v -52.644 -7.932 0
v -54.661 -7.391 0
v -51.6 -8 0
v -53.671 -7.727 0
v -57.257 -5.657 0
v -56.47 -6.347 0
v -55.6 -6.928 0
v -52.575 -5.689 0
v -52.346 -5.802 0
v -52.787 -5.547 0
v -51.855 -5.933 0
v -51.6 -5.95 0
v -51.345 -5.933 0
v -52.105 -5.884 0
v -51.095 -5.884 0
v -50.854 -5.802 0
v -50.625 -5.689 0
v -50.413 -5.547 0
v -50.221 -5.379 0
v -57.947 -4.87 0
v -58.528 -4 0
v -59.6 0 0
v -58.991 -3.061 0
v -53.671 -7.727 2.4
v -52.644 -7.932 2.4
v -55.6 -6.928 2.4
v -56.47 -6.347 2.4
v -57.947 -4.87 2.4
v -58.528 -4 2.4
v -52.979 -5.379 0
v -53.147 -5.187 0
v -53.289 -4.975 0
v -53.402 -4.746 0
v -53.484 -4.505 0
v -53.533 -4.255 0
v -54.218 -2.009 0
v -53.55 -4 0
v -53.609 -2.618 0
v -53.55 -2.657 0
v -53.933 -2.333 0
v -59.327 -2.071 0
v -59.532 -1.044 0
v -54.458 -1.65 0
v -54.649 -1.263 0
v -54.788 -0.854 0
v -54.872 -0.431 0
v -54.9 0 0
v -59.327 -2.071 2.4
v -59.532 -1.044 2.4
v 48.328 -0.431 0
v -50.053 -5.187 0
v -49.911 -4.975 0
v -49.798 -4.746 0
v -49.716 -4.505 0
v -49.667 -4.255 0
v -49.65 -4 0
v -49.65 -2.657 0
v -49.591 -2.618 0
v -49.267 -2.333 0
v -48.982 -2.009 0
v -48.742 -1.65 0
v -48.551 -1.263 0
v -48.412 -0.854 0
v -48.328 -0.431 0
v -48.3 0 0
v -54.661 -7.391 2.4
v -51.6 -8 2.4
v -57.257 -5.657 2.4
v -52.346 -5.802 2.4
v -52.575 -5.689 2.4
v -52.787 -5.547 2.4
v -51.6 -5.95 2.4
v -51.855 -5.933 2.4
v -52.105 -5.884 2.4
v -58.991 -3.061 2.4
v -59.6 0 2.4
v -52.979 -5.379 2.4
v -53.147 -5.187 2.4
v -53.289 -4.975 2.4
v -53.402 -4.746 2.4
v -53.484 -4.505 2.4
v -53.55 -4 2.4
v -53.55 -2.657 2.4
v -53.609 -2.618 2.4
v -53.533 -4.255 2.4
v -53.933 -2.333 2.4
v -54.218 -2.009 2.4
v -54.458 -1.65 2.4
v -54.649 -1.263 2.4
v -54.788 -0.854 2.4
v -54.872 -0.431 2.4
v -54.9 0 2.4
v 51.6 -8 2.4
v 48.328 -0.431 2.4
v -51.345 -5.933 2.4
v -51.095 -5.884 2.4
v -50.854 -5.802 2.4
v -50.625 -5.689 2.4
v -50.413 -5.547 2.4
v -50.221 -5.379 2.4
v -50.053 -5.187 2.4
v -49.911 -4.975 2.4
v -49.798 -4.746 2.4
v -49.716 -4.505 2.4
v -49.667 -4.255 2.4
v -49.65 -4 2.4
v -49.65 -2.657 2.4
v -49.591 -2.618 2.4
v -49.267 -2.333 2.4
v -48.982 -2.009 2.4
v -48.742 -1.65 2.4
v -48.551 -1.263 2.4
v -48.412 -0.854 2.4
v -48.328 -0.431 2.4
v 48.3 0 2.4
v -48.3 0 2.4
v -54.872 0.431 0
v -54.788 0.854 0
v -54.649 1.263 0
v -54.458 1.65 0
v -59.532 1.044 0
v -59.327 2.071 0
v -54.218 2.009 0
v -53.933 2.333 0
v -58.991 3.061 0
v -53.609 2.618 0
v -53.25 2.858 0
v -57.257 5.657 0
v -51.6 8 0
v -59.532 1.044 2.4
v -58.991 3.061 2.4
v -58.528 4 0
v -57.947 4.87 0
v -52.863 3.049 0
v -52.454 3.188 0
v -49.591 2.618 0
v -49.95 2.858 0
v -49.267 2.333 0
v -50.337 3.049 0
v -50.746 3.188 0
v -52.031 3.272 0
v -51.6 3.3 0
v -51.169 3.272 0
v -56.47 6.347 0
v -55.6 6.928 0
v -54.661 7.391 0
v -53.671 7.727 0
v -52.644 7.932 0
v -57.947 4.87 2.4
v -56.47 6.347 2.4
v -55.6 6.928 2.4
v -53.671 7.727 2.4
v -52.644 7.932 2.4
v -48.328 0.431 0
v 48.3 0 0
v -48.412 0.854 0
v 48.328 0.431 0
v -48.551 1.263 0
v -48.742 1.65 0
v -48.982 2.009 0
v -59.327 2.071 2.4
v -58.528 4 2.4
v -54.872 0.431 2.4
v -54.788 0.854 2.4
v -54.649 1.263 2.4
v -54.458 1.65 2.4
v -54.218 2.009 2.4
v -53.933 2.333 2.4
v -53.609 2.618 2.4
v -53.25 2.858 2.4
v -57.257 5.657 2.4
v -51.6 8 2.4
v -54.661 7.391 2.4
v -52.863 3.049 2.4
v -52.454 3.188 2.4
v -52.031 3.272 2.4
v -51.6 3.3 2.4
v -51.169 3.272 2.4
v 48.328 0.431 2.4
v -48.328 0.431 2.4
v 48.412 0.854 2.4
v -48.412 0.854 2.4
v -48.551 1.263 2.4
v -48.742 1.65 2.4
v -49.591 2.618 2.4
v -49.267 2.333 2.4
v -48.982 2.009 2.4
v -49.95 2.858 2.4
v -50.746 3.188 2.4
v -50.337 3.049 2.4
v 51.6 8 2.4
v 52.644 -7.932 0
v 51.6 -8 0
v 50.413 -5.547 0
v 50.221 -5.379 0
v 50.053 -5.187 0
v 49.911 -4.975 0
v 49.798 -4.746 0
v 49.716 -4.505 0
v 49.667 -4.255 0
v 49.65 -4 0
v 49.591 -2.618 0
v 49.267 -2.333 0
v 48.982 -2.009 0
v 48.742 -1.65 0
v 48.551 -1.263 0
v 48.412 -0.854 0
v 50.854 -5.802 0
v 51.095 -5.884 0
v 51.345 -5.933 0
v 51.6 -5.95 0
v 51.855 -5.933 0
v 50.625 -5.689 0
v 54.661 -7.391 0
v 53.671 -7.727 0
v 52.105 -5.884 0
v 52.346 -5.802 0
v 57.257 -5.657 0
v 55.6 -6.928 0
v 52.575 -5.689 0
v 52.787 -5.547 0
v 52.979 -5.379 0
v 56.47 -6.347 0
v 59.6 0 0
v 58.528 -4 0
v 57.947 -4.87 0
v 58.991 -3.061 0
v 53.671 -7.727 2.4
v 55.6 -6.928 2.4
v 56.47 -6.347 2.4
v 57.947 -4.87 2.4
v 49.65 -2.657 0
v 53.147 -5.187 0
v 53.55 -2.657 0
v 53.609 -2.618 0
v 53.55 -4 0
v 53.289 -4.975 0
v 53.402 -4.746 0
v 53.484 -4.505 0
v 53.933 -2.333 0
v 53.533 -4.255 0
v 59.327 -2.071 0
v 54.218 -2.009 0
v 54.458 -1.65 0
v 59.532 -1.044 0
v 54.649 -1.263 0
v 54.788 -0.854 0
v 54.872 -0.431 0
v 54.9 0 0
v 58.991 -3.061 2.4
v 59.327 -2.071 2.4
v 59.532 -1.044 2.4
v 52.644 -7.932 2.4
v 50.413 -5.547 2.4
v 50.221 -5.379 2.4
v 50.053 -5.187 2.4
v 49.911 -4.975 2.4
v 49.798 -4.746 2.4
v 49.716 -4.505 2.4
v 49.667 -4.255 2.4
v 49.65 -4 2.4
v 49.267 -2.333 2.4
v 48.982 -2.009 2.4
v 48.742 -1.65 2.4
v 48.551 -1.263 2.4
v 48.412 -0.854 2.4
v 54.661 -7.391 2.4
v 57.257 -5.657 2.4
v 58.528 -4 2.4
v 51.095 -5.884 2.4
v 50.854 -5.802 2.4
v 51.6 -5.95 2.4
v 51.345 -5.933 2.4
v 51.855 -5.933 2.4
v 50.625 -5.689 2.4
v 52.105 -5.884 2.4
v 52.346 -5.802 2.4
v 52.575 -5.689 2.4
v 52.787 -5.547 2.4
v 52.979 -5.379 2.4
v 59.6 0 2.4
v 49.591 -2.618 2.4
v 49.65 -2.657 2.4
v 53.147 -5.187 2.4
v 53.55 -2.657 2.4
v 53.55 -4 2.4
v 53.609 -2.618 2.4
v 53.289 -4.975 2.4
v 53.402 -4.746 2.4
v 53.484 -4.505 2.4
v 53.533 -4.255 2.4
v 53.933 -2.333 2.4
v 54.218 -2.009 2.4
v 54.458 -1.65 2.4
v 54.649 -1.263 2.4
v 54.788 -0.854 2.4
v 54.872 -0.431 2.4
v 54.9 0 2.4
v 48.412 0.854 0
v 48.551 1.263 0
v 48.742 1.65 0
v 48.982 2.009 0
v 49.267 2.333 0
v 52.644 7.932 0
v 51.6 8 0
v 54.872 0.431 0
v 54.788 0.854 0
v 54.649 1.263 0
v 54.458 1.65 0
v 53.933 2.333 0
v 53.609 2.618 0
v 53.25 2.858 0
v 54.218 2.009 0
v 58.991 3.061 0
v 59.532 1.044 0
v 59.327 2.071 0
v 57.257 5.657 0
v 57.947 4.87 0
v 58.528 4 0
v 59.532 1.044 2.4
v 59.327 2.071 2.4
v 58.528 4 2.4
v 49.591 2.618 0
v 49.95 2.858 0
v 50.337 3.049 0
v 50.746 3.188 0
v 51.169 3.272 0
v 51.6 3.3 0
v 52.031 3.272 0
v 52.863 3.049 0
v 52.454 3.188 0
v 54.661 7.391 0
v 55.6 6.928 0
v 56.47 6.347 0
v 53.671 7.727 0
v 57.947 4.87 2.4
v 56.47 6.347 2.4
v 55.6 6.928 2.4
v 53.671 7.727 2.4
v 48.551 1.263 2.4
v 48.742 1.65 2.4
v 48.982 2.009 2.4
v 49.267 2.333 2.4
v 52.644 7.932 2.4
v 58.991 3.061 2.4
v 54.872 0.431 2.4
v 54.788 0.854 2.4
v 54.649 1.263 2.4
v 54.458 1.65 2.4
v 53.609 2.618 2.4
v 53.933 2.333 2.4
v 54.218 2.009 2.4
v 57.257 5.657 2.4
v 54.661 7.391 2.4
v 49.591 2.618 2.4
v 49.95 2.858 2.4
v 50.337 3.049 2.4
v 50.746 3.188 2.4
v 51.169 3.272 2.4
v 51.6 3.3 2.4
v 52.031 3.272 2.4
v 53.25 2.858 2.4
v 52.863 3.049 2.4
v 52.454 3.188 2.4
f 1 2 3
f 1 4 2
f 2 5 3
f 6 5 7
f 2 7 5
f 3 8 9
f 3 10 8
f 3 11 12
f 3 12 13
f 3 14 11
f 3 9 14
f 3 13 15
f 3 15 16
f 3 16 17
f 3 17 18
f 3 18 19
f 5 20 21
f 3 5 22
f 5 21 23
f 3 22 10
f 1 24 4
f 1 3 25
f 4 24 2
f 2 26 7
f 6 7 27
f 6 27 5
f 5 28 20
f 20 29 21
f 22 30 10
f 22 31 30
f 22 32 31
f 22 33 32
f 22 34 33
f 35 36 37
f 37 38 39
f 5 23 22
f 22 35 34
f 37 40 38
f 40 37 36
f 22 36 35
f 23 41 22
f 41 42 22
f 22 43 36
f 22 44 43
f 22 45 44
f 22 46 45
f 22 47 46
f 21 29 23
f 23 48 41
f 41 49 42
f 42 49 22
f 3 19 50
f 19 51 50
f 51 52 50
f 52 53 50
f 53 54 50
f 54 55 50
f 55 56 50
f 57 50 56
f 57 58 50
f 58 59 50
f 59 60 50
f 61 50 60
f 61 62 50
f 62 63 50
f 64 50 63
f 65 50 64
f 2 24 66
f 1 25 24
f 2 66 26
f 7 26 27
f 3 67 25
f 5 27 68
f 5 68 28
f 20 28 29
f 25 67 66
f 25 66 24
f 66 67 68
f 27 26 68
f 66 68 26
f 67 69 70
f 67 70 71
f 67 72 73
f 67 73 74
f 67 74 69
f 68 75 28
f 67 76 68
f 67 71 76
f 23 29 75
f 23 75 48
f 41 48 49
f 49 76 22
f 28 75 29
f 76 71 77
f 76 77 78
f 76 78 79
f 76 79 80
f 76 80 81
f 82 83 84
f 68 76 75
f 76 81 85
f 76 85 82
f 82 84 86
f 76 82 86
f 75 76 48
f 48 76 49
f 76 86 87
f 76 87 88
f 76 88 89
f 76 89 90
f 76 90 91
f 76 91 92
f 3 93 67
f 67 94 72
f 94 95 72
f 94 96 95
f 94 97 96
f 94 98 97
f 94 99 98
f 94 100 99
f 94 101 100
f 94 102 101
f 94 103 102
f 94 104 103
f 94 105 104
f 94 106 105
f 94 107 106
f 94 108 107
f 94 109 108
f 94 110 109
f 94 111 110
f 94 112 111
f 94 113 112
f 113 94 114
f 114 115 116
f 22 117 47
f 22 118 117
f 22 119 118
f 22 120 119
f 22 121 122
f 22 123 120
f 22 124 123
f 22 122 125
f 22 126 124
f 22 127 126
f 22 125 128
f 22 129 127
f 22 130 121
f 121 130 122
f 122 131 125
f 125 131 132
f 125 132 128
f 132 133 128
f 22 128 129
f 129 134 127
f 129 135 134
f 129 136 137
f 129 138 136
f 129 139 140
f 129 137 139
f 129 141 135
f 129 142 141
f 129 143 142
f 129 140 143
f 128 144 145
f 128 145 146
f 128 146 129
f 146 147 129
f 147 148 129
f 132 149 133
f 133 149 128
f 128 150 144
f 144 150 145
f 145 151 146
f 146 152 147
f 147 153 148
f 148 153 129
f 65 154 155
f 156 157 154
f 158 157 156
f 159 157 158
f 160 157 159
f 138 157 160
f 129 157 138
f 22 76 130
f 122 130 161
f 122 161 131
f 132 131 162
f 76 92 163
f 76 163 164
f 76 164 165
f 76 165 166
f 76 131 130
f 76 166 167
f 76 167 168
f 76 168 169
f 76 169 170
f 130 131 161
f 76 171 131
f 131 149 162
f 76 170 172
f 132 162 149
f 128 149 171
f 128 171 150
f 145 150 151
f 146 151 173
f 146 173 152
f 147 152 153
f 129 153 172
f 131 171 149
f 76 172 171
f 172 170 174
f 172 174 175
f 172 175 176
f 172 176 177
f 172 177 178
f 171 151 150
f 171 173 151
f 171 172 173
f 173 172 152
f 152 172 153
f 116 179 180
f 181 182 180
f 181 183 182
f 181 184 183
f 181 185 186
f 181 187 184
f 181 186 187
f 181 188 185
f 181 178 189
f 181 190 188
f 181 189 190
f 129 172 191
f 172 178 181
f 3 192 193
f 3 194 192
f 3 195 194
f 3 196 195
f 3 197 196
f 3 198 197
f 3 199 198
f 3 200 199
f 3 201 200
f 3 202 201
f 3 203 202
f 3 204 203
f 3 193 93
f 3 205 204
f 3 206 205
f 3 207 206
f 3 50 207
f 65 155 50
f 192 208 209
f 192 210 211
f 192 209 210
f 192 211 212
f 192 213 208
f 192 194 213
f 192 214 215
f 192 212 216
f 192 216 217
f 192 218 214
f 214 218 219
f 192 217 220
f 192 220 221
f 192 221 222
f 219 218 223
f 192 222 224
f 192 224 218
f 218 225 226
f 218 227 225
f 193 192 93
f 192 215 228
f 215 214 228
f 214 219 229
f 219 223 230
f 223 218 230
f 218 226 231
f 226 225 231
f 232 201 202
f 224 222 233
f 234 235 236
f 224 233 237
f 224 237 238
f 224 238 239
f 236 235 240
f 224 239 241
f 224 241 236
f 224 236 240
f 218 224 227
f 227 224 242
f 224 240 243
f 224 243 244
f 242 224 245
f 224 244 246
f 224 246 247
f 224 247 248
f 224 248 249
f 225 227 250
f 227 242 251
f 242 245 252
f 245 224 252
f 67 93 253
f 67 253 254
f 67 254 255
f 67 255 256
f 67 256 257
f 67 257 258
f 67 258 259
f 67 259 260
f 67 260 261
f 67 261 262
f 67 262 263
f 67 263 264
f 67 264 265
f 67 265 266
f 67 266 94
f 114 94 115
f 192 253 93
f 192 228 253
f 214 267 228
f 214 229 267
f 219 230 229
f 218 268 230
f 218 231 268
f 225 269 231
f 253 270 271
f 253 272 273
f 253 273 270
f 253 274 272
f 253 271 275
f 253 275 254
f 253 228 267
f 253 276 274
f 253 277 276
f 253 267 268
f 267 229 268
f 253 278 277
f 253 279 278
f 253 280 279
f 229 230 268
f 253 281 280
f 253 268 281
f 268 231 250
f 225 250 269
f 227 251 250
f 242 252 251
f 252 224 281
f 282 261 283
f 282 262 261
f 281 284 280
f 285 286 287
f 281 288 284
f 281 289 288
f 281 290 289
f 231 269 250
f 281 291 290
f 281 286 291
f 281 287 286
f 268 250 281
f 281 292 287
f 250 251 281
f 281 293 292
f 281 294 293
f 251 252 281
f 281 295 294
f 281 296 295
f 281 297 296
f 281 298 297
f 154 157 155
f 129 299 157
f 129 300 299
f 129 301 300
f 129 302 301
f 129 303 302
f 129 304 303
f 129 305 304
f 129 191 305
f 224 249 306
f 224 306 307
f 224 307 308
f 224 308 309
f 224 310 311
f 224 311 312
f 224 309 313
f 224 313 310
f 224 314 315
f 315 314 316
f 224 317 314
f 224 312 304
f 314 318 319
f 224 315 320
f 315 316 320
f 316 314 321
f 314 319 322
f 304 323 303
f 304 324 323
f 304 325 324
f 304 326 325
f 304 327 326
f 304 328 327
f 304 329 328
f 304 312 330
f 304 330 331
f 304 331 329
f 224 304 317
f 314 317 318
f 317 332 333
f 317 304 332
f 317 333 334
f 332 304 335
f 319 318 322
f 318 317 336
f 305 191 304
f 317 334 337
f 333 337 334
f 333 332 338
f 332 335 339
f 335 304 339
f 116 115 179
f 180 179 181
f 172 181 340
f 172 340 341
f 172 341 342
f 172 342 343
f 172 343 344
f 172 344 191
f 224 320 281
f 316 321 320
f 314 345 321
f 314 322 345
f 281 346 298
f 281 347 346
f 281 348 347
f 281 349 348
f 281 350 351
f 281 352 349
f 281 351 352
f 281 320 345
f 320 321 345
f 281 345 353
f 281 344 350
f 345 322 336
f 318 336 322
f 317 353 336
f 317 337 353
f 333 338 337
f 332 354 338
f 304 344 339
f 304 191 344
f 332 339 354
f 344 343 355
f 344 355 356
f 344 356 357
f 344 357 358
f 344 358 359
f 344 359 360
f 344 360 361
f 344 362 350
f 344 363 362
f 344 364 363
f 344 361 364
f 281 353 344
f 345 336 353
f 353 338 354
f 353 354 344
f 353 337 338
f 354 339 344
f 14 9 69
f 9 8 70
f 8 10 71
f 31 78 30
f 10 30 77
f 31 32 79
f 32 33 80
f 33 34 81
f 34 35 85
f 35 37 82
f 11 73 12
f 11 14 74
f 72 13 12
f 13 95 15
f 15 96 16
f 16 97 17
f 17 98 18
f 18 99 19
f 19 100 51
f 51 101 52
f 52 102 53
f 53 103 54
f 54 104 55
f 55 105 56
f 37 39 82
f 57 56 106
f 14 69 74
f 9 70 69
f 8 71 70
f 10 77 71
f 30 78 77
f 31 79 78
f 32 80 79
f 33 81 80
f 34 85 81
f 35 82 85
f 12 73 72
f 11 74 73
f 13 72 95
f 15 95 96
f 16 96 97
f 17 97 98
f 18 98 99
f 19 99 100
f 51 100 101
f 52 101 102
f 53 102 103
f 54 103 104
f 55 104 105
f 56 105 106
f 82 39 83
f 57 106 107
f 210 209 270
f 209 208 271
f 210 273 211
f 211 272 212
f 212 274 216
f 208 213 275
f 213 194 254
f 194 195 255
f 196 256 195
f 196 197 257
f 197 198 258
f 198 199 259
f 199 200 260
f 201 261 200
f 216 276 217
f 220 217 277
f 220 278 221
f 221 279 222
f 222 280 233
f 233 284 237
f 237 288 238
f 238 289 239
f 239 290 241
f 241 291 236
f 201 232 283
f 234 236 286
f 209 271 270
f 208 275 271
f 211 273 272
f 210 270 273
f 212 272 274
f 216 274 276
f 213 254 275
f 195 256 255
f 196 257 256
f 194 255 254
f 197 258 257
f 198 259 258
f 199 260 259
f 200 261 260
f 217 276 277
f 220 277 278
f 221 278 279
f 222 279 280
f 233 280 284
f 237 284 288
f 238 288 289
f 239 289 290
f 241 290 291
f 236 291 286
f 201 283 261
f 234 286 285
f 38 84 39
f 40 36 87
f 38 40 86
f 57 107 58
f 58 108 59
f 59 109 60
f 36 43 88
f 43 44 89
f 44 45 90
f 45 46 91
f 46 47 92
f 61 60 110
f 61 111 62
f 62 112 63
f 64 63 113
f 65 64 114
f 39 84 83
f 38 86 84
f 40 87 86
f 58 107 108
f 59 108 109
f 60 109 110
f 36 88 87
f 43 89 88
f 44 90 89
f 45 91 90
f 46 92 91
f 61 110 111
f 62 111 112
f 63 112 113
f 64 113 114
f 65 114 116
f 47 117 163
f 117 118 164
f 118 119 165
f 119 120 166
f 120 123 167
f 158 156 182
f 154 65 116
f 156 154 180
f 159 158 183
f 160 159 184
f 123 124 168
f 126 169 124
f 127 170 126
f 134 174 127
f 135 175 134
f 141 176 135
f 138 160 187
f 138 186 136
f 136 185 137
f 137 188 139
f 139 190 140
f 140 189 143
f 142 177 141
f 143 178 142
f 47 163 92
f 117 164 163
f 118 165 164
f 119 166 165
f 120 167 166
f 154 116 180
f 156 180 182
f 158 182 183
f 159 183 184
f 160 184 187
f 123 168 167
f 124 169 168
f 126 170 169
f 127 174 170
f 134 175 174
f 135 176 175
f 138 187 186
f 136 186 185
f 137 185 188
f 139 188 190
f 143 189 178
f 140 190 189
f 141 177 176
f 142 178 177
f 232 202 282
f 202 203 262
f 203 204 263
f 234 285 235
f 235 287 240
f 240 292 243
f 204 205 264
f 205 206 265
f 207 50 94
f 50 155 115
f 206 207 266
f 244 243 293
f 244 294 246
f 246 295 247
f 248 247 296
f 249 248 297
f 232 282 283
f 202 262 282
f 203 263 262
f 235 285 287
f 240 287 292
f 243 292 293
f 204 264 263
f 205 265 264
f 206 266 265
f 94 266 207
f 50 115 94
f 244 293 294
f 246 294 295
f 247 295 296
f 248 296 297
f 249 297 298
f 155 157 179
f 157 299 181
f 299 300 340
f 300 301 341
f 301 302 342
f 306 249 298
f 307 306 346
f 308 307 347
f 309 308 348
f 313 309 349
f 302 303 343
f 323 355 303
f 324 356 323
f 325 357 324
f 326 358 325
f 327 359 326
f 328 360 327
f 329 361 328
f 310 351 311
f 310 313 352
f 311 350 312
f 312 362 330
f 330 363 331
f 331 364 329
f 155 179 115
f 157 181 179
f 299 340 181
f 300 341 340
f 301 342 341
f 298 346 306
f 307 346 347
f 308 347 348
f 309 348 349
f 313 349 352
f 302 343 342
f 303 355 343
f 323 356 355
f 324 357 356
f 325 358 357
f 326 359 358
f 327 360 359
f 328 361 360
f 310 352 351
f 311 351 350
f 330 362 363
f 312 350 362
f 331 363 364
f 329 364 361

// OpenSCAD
// TRAVA DO CELULAR: barrinha que encaixa por pressão nas cabeças dos 2 pinos do berço (mesma altura),
// passando por cima da traseira do celular. Imprime deitada. Precisa de 2 (uma por par de pinos: z=45 e z=90).
ph_w = 80; rail = 4; slot_w = ph_w + 0.6;
peg_x = slot_w/2 + rail + 7.3;         // centro da cabeça do pino (haste 6 + meia cabeça)
span = 2*peg_x + 16;                   // sobra de 8 mm em cada ponta
t = 2.4; w = 16;
$fn = 48;
difference() {
  hull() { for (s=[-1,1]) translate([s*(span/2-w/2), 0, 0]) cylinder(d=w, h=t); }
  // furos de fechadura: entrada larga (passa a cabeça de 6 mm) + rasgo estreito (prende no pino de 3,5 mm)
  for (s=[-1,1]) {
    translate([s*peg_x, 0, -1]) cylinder(d=6.6, h=t+2);                 // onde a cabeça passa
    hull() { translate([s*peg_x, 0, -1]) cylinder(d=3.9, h=t+2); translate([s*peg_x, -4, -1]) cylinder(d=3.9, h=t+2); } // desliza pra travar
  }
}
